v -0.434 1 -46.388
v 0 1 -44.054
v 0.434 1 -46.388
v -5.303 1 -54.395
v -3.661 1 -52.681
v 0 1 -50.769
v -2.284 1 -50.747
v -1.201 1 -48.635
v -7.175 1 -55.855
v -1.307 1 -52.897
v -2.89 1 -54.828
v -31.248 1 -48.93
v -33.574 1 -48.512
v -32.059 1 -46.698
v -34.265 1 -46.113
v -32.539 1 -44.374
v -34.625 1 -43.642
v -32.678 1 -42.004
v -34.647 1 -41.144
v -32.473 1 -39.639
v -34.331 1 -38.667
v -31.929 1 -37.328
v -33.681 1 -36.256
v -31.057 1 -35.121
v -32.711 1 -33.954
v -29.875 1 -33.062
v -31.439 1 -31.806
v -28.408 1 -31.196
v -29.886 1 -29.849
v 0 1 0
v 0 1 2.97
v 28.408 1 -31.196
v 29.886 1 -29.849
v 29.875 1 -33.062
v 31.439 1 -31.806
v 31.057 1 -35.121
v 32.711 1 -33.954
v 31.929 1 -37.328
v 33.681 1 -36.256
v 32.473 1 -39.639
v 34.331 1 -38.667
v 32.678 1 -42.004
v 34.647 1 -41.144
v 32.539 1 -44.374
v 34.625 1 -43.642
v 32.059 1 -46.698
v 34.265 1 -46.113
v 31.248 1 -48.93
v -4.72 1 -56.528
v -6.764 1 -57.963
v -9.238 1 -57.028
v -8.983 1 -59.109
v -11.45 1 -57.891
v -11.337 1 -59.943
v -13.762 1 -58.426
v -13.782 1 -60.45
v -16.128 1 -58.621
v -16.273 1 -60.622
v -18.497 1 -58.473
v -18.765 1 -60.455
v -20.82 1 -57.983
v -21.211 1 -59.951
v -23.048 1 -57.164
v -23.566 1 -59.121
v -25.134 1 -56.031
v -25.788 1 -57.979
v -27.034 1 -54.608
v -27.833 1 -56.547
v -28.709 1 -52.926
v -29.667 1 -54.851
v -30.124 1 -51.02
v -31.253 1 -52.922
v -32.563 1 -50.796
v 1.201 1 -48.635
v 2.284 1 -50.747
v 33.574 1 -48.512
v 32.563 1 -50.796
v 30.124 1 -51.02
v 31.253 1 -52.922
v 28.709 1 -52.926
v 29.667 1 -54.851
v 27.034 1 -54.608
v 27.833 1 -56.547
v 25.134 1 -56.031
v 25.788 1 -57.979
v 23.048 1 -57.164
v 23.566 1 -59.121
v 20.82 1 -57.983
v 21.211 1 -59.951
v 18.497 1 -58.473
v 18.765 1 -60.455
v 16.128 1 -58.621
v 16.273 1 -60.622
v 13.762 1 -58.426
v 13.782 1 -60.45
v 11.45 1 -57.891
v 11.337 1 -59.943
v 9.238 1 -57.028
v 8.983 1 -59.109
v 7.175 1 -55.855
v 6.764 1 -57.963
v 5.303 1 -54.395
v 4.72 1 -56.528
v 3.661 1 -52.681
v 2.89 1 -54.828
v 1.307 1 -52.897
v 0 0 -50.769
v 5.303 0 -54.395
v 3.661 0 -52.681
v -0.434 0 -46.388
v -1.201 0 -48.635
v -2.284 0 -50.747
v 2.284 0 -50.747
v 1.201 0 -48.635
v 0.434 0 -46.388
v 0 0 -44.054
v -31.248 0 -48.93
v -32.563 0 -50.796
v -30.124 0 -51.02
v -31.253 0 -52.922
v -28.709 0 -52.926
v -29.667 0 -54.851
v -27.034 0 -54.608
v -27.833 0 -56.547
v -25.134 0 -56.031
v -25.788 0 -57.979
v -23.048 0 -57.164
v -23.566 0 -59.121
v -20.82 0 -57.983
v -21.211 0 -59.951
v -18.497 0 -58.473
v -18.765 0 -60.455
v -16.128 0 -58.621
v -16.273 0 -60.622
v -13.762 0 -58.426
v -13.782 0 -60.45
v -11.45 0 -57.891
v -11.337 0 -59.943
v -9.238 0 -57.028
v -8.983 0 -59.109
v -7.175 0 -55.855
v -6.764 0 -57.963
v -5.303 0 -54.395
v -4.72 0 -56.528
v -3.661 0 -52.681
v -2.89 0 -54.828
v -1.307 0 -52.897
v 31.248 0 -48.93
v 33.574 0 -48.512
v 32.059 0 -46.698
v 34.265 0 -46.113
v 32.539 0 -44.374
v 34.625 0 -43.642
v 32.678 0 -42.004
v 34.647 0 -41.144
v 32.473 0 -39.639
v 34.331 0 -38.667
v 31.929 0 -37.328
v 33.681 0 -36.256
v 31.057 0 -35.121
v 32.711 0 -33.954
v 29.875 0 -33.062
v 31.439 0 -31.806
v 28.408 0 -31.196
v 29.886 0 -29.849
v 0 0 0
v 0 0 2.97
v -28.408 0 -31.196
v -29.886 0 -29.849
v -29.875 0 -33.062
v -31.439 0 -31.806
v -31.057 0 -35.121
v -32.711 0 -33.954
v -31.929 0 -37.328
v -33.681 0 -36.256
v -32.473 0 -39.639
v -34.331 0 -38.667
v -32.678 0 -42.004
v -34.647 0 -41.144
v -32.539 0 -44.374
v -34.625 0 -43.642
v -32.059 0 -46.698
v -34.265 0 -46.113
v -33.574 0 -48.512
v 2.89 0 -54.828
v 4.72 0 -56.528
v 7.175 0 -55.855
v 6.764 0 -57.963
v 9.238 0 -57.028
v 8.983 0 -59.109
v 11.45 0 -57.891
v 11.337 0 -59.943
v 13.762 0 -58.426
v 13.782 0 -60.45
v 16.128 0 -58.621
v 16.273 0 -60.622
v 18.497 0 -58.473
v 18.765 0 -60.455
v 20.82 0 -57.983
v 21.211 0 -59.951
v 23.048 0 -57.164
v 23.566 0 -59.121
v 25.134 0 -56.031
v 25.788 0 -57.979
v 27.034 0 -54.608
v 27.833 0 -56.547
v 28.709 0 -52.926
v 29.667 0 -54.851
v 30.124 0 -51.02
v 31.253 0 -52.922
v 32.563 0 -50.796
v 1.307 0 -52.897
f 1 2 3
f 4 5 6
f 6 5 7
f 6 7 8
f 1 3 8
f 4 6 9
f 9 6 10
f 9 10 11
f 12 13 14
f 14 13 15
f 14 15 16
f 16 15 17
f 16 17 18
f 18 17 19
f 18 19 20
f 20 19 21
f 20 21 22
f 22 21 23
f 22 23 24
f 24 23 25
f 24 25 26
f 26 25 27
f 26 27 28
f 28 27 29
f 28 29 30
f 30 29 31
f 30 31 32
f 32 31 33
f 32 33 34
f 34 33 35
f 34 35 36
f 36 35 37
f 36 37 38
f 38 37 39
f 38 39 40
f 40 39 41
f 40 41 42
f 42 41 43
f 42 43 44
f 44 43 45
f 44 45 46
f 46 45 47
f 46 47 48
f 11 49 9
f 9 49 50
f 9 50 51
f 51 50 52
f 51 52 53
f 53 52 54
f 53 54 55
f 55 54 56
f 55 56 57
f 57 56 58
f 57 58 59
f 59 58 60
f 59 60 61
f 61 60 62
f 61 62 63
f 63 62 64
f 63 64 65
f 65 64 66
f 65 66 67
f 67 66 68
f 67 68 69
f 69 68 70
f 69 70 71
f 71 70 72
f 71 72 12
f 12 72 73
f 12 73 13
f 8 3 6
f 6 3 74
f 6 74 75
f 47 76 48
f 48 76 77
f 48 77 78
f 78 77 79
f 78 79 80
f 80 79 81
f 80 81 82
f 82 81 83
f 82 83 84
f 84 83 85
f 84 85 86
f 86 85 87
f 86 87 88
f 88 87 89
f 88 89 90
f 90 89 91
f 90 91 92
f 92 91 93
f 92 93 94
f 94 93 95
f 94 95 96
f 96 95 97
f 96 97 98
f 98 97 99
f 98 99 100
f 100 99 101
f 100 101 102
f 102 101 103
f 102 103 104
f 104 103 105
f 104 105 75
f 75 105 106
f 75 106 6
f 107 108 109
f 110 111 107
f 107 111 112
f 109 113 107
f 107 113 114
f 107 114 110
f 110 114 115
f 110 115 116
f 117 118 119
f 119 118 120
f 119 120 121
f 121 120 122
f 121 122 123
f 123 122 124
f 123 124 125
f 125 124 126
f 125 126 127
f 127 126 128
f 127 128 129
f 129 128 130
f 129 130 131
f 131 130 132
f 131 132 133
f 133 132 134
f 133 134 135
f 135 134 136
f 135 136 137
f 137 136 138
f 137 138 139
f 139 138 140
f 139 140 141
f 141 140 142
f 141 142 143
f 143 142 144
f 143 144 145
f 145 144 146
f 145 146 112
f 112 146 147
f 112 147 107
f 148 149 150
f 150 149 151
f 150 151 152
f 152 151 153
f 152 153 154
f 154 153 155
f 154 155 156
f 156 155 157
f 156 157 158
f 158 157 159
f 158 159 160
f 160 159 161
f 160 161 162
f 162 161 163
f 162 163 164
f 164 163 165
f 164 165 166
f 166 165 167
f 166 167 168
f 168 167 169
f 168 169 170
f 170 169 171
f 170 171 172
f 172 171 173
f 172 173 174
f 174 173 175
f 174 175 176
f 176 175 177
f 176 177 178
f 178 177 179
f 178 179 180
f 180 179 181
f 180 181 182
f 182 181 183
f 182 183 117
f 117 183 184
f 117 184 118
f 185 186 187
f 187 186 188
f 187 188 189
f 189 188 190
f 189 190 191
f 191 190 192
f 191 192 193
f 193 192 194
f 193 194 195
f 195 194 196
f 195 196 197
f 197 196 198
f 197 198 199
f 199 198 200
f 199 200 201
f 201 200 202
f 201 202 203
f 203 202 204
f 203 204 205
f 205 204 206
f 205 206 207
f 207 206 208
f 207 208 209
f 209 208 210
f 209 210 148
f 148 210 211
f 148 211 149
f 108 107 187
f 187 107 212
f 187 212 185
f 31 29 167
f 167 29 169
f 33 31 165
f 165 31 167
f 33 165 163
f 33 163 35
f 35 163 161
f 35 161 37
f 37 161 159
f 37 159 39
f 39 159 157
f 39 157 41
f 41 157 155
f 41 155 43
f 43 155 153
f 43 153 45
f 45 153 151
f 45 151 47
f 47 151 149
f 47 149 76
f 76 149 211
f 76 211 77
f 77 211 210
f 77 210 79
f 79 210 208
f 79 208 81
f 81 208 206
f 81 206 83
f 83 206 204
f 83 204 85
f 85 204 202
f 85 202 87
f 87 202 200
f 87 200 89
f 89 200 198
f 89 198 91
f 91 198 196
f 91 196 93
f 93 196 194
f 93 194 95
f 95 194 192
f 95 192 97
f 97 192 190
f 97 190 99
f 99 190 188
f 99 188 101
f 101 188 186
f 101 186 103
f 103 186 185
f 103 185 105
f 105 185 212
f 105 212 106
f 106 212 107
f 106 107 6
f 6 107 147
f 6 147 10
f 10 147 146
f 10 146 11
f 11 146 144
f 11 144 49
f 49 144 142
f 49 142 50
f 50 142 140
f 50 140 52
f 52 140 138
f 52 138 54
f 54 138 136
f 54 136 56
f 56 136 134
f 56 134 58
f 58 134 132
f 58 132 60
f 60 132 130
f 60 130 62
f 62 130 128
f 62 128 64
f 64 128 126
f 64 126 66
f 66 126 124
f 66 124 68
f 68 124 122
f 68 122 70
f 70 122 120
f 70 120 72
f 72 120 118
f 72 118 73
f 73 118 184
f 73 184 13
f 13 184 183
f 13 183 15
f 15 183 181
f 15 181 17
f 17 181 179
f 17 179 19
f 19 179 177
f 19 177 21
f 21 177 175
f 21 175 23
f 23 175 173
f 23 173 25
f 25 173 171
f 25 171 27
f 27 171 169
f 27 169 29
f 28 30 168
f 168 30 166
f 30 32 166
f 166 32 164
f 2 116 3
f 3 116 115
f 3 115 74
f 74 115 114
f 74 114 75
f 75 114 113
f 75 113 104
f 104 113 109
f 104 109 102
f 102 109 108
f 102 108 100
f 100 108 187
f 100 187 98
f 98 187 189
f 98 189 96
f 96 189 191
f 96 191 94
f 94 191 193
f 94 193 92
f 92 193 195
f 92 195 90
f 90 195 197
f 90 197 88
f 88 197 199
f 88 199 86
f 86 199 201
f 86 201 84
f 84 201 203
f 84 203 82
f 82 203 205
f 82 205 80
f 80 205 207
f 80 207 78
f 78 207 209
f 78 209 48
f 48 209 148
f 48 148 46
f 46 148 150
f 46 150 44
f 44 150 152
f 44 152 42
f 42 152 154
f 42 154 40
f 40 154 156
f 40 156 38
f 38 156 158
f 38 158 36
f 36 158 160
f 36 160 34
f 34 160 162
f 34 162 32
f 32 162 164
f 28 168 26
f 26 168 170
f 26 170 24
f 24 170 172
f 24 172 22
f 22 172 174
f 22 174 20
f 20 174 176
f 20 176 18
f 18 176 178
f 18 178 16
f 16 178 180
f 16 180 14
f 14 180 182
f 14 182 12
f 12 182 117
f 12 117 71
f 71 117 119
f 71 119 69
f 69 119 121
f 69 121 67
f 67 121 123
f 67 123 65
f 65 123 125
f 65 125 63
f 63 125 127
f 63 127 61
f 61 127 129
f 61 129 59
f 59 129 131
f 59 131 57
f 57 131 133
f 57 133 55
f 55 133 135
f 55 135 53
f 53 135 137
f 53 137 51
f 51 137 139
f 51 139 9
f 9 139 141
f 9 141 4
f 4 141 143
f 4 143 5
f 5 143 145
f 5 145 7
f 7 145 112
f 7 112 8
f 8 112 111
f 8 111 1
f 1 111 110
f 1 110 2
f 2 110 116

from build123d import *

# Parameters (mm, degrees)
BOSS_EXTRUDE2_DEPTH = 1


with BuildPart() as part:
    # Sketch1 → Boss-Extrude2 (new body)
    with BuildSketch(Plane(origin=(0, 0, 0), x_dir=(1, 0, 0), z_dir=(0, 1, 0))):
        with BuildLine():
            Line((0, -2.970477964), (29.886420182, 29.84931356))
            ThreePointArc((29.886420182, 29.84931356), (26.834835807, 57.297903562), (0, 50.768826482))
            ThreePointArc((0, 50.768826482), (-26.834835807, 57.297903562), (-29.886420182, 29.84931356))
            Line((-29.886420182, 29.84931356), (0, -2.970477964))
        make_face()
        with BuildLine():
            Line((0, 0), (28.407667395, 31.1958982))
            ThreePointArc((28.407667395, 31.1958982), (23.047800089, 57.163629593), (0, 44.054466297))
            ThreePointArc((0, 44.054466297), (-23.047800089, 57.163629593), (-28.407667395, 31.1958982))
            Line((-28.407667395, 31.1958982), (0, 0))
        make_face(mode=Mode.SUBTRACT)
    extrude(amount=BOSS_EXTRUDE2_DEPTH)


solid = part.part
